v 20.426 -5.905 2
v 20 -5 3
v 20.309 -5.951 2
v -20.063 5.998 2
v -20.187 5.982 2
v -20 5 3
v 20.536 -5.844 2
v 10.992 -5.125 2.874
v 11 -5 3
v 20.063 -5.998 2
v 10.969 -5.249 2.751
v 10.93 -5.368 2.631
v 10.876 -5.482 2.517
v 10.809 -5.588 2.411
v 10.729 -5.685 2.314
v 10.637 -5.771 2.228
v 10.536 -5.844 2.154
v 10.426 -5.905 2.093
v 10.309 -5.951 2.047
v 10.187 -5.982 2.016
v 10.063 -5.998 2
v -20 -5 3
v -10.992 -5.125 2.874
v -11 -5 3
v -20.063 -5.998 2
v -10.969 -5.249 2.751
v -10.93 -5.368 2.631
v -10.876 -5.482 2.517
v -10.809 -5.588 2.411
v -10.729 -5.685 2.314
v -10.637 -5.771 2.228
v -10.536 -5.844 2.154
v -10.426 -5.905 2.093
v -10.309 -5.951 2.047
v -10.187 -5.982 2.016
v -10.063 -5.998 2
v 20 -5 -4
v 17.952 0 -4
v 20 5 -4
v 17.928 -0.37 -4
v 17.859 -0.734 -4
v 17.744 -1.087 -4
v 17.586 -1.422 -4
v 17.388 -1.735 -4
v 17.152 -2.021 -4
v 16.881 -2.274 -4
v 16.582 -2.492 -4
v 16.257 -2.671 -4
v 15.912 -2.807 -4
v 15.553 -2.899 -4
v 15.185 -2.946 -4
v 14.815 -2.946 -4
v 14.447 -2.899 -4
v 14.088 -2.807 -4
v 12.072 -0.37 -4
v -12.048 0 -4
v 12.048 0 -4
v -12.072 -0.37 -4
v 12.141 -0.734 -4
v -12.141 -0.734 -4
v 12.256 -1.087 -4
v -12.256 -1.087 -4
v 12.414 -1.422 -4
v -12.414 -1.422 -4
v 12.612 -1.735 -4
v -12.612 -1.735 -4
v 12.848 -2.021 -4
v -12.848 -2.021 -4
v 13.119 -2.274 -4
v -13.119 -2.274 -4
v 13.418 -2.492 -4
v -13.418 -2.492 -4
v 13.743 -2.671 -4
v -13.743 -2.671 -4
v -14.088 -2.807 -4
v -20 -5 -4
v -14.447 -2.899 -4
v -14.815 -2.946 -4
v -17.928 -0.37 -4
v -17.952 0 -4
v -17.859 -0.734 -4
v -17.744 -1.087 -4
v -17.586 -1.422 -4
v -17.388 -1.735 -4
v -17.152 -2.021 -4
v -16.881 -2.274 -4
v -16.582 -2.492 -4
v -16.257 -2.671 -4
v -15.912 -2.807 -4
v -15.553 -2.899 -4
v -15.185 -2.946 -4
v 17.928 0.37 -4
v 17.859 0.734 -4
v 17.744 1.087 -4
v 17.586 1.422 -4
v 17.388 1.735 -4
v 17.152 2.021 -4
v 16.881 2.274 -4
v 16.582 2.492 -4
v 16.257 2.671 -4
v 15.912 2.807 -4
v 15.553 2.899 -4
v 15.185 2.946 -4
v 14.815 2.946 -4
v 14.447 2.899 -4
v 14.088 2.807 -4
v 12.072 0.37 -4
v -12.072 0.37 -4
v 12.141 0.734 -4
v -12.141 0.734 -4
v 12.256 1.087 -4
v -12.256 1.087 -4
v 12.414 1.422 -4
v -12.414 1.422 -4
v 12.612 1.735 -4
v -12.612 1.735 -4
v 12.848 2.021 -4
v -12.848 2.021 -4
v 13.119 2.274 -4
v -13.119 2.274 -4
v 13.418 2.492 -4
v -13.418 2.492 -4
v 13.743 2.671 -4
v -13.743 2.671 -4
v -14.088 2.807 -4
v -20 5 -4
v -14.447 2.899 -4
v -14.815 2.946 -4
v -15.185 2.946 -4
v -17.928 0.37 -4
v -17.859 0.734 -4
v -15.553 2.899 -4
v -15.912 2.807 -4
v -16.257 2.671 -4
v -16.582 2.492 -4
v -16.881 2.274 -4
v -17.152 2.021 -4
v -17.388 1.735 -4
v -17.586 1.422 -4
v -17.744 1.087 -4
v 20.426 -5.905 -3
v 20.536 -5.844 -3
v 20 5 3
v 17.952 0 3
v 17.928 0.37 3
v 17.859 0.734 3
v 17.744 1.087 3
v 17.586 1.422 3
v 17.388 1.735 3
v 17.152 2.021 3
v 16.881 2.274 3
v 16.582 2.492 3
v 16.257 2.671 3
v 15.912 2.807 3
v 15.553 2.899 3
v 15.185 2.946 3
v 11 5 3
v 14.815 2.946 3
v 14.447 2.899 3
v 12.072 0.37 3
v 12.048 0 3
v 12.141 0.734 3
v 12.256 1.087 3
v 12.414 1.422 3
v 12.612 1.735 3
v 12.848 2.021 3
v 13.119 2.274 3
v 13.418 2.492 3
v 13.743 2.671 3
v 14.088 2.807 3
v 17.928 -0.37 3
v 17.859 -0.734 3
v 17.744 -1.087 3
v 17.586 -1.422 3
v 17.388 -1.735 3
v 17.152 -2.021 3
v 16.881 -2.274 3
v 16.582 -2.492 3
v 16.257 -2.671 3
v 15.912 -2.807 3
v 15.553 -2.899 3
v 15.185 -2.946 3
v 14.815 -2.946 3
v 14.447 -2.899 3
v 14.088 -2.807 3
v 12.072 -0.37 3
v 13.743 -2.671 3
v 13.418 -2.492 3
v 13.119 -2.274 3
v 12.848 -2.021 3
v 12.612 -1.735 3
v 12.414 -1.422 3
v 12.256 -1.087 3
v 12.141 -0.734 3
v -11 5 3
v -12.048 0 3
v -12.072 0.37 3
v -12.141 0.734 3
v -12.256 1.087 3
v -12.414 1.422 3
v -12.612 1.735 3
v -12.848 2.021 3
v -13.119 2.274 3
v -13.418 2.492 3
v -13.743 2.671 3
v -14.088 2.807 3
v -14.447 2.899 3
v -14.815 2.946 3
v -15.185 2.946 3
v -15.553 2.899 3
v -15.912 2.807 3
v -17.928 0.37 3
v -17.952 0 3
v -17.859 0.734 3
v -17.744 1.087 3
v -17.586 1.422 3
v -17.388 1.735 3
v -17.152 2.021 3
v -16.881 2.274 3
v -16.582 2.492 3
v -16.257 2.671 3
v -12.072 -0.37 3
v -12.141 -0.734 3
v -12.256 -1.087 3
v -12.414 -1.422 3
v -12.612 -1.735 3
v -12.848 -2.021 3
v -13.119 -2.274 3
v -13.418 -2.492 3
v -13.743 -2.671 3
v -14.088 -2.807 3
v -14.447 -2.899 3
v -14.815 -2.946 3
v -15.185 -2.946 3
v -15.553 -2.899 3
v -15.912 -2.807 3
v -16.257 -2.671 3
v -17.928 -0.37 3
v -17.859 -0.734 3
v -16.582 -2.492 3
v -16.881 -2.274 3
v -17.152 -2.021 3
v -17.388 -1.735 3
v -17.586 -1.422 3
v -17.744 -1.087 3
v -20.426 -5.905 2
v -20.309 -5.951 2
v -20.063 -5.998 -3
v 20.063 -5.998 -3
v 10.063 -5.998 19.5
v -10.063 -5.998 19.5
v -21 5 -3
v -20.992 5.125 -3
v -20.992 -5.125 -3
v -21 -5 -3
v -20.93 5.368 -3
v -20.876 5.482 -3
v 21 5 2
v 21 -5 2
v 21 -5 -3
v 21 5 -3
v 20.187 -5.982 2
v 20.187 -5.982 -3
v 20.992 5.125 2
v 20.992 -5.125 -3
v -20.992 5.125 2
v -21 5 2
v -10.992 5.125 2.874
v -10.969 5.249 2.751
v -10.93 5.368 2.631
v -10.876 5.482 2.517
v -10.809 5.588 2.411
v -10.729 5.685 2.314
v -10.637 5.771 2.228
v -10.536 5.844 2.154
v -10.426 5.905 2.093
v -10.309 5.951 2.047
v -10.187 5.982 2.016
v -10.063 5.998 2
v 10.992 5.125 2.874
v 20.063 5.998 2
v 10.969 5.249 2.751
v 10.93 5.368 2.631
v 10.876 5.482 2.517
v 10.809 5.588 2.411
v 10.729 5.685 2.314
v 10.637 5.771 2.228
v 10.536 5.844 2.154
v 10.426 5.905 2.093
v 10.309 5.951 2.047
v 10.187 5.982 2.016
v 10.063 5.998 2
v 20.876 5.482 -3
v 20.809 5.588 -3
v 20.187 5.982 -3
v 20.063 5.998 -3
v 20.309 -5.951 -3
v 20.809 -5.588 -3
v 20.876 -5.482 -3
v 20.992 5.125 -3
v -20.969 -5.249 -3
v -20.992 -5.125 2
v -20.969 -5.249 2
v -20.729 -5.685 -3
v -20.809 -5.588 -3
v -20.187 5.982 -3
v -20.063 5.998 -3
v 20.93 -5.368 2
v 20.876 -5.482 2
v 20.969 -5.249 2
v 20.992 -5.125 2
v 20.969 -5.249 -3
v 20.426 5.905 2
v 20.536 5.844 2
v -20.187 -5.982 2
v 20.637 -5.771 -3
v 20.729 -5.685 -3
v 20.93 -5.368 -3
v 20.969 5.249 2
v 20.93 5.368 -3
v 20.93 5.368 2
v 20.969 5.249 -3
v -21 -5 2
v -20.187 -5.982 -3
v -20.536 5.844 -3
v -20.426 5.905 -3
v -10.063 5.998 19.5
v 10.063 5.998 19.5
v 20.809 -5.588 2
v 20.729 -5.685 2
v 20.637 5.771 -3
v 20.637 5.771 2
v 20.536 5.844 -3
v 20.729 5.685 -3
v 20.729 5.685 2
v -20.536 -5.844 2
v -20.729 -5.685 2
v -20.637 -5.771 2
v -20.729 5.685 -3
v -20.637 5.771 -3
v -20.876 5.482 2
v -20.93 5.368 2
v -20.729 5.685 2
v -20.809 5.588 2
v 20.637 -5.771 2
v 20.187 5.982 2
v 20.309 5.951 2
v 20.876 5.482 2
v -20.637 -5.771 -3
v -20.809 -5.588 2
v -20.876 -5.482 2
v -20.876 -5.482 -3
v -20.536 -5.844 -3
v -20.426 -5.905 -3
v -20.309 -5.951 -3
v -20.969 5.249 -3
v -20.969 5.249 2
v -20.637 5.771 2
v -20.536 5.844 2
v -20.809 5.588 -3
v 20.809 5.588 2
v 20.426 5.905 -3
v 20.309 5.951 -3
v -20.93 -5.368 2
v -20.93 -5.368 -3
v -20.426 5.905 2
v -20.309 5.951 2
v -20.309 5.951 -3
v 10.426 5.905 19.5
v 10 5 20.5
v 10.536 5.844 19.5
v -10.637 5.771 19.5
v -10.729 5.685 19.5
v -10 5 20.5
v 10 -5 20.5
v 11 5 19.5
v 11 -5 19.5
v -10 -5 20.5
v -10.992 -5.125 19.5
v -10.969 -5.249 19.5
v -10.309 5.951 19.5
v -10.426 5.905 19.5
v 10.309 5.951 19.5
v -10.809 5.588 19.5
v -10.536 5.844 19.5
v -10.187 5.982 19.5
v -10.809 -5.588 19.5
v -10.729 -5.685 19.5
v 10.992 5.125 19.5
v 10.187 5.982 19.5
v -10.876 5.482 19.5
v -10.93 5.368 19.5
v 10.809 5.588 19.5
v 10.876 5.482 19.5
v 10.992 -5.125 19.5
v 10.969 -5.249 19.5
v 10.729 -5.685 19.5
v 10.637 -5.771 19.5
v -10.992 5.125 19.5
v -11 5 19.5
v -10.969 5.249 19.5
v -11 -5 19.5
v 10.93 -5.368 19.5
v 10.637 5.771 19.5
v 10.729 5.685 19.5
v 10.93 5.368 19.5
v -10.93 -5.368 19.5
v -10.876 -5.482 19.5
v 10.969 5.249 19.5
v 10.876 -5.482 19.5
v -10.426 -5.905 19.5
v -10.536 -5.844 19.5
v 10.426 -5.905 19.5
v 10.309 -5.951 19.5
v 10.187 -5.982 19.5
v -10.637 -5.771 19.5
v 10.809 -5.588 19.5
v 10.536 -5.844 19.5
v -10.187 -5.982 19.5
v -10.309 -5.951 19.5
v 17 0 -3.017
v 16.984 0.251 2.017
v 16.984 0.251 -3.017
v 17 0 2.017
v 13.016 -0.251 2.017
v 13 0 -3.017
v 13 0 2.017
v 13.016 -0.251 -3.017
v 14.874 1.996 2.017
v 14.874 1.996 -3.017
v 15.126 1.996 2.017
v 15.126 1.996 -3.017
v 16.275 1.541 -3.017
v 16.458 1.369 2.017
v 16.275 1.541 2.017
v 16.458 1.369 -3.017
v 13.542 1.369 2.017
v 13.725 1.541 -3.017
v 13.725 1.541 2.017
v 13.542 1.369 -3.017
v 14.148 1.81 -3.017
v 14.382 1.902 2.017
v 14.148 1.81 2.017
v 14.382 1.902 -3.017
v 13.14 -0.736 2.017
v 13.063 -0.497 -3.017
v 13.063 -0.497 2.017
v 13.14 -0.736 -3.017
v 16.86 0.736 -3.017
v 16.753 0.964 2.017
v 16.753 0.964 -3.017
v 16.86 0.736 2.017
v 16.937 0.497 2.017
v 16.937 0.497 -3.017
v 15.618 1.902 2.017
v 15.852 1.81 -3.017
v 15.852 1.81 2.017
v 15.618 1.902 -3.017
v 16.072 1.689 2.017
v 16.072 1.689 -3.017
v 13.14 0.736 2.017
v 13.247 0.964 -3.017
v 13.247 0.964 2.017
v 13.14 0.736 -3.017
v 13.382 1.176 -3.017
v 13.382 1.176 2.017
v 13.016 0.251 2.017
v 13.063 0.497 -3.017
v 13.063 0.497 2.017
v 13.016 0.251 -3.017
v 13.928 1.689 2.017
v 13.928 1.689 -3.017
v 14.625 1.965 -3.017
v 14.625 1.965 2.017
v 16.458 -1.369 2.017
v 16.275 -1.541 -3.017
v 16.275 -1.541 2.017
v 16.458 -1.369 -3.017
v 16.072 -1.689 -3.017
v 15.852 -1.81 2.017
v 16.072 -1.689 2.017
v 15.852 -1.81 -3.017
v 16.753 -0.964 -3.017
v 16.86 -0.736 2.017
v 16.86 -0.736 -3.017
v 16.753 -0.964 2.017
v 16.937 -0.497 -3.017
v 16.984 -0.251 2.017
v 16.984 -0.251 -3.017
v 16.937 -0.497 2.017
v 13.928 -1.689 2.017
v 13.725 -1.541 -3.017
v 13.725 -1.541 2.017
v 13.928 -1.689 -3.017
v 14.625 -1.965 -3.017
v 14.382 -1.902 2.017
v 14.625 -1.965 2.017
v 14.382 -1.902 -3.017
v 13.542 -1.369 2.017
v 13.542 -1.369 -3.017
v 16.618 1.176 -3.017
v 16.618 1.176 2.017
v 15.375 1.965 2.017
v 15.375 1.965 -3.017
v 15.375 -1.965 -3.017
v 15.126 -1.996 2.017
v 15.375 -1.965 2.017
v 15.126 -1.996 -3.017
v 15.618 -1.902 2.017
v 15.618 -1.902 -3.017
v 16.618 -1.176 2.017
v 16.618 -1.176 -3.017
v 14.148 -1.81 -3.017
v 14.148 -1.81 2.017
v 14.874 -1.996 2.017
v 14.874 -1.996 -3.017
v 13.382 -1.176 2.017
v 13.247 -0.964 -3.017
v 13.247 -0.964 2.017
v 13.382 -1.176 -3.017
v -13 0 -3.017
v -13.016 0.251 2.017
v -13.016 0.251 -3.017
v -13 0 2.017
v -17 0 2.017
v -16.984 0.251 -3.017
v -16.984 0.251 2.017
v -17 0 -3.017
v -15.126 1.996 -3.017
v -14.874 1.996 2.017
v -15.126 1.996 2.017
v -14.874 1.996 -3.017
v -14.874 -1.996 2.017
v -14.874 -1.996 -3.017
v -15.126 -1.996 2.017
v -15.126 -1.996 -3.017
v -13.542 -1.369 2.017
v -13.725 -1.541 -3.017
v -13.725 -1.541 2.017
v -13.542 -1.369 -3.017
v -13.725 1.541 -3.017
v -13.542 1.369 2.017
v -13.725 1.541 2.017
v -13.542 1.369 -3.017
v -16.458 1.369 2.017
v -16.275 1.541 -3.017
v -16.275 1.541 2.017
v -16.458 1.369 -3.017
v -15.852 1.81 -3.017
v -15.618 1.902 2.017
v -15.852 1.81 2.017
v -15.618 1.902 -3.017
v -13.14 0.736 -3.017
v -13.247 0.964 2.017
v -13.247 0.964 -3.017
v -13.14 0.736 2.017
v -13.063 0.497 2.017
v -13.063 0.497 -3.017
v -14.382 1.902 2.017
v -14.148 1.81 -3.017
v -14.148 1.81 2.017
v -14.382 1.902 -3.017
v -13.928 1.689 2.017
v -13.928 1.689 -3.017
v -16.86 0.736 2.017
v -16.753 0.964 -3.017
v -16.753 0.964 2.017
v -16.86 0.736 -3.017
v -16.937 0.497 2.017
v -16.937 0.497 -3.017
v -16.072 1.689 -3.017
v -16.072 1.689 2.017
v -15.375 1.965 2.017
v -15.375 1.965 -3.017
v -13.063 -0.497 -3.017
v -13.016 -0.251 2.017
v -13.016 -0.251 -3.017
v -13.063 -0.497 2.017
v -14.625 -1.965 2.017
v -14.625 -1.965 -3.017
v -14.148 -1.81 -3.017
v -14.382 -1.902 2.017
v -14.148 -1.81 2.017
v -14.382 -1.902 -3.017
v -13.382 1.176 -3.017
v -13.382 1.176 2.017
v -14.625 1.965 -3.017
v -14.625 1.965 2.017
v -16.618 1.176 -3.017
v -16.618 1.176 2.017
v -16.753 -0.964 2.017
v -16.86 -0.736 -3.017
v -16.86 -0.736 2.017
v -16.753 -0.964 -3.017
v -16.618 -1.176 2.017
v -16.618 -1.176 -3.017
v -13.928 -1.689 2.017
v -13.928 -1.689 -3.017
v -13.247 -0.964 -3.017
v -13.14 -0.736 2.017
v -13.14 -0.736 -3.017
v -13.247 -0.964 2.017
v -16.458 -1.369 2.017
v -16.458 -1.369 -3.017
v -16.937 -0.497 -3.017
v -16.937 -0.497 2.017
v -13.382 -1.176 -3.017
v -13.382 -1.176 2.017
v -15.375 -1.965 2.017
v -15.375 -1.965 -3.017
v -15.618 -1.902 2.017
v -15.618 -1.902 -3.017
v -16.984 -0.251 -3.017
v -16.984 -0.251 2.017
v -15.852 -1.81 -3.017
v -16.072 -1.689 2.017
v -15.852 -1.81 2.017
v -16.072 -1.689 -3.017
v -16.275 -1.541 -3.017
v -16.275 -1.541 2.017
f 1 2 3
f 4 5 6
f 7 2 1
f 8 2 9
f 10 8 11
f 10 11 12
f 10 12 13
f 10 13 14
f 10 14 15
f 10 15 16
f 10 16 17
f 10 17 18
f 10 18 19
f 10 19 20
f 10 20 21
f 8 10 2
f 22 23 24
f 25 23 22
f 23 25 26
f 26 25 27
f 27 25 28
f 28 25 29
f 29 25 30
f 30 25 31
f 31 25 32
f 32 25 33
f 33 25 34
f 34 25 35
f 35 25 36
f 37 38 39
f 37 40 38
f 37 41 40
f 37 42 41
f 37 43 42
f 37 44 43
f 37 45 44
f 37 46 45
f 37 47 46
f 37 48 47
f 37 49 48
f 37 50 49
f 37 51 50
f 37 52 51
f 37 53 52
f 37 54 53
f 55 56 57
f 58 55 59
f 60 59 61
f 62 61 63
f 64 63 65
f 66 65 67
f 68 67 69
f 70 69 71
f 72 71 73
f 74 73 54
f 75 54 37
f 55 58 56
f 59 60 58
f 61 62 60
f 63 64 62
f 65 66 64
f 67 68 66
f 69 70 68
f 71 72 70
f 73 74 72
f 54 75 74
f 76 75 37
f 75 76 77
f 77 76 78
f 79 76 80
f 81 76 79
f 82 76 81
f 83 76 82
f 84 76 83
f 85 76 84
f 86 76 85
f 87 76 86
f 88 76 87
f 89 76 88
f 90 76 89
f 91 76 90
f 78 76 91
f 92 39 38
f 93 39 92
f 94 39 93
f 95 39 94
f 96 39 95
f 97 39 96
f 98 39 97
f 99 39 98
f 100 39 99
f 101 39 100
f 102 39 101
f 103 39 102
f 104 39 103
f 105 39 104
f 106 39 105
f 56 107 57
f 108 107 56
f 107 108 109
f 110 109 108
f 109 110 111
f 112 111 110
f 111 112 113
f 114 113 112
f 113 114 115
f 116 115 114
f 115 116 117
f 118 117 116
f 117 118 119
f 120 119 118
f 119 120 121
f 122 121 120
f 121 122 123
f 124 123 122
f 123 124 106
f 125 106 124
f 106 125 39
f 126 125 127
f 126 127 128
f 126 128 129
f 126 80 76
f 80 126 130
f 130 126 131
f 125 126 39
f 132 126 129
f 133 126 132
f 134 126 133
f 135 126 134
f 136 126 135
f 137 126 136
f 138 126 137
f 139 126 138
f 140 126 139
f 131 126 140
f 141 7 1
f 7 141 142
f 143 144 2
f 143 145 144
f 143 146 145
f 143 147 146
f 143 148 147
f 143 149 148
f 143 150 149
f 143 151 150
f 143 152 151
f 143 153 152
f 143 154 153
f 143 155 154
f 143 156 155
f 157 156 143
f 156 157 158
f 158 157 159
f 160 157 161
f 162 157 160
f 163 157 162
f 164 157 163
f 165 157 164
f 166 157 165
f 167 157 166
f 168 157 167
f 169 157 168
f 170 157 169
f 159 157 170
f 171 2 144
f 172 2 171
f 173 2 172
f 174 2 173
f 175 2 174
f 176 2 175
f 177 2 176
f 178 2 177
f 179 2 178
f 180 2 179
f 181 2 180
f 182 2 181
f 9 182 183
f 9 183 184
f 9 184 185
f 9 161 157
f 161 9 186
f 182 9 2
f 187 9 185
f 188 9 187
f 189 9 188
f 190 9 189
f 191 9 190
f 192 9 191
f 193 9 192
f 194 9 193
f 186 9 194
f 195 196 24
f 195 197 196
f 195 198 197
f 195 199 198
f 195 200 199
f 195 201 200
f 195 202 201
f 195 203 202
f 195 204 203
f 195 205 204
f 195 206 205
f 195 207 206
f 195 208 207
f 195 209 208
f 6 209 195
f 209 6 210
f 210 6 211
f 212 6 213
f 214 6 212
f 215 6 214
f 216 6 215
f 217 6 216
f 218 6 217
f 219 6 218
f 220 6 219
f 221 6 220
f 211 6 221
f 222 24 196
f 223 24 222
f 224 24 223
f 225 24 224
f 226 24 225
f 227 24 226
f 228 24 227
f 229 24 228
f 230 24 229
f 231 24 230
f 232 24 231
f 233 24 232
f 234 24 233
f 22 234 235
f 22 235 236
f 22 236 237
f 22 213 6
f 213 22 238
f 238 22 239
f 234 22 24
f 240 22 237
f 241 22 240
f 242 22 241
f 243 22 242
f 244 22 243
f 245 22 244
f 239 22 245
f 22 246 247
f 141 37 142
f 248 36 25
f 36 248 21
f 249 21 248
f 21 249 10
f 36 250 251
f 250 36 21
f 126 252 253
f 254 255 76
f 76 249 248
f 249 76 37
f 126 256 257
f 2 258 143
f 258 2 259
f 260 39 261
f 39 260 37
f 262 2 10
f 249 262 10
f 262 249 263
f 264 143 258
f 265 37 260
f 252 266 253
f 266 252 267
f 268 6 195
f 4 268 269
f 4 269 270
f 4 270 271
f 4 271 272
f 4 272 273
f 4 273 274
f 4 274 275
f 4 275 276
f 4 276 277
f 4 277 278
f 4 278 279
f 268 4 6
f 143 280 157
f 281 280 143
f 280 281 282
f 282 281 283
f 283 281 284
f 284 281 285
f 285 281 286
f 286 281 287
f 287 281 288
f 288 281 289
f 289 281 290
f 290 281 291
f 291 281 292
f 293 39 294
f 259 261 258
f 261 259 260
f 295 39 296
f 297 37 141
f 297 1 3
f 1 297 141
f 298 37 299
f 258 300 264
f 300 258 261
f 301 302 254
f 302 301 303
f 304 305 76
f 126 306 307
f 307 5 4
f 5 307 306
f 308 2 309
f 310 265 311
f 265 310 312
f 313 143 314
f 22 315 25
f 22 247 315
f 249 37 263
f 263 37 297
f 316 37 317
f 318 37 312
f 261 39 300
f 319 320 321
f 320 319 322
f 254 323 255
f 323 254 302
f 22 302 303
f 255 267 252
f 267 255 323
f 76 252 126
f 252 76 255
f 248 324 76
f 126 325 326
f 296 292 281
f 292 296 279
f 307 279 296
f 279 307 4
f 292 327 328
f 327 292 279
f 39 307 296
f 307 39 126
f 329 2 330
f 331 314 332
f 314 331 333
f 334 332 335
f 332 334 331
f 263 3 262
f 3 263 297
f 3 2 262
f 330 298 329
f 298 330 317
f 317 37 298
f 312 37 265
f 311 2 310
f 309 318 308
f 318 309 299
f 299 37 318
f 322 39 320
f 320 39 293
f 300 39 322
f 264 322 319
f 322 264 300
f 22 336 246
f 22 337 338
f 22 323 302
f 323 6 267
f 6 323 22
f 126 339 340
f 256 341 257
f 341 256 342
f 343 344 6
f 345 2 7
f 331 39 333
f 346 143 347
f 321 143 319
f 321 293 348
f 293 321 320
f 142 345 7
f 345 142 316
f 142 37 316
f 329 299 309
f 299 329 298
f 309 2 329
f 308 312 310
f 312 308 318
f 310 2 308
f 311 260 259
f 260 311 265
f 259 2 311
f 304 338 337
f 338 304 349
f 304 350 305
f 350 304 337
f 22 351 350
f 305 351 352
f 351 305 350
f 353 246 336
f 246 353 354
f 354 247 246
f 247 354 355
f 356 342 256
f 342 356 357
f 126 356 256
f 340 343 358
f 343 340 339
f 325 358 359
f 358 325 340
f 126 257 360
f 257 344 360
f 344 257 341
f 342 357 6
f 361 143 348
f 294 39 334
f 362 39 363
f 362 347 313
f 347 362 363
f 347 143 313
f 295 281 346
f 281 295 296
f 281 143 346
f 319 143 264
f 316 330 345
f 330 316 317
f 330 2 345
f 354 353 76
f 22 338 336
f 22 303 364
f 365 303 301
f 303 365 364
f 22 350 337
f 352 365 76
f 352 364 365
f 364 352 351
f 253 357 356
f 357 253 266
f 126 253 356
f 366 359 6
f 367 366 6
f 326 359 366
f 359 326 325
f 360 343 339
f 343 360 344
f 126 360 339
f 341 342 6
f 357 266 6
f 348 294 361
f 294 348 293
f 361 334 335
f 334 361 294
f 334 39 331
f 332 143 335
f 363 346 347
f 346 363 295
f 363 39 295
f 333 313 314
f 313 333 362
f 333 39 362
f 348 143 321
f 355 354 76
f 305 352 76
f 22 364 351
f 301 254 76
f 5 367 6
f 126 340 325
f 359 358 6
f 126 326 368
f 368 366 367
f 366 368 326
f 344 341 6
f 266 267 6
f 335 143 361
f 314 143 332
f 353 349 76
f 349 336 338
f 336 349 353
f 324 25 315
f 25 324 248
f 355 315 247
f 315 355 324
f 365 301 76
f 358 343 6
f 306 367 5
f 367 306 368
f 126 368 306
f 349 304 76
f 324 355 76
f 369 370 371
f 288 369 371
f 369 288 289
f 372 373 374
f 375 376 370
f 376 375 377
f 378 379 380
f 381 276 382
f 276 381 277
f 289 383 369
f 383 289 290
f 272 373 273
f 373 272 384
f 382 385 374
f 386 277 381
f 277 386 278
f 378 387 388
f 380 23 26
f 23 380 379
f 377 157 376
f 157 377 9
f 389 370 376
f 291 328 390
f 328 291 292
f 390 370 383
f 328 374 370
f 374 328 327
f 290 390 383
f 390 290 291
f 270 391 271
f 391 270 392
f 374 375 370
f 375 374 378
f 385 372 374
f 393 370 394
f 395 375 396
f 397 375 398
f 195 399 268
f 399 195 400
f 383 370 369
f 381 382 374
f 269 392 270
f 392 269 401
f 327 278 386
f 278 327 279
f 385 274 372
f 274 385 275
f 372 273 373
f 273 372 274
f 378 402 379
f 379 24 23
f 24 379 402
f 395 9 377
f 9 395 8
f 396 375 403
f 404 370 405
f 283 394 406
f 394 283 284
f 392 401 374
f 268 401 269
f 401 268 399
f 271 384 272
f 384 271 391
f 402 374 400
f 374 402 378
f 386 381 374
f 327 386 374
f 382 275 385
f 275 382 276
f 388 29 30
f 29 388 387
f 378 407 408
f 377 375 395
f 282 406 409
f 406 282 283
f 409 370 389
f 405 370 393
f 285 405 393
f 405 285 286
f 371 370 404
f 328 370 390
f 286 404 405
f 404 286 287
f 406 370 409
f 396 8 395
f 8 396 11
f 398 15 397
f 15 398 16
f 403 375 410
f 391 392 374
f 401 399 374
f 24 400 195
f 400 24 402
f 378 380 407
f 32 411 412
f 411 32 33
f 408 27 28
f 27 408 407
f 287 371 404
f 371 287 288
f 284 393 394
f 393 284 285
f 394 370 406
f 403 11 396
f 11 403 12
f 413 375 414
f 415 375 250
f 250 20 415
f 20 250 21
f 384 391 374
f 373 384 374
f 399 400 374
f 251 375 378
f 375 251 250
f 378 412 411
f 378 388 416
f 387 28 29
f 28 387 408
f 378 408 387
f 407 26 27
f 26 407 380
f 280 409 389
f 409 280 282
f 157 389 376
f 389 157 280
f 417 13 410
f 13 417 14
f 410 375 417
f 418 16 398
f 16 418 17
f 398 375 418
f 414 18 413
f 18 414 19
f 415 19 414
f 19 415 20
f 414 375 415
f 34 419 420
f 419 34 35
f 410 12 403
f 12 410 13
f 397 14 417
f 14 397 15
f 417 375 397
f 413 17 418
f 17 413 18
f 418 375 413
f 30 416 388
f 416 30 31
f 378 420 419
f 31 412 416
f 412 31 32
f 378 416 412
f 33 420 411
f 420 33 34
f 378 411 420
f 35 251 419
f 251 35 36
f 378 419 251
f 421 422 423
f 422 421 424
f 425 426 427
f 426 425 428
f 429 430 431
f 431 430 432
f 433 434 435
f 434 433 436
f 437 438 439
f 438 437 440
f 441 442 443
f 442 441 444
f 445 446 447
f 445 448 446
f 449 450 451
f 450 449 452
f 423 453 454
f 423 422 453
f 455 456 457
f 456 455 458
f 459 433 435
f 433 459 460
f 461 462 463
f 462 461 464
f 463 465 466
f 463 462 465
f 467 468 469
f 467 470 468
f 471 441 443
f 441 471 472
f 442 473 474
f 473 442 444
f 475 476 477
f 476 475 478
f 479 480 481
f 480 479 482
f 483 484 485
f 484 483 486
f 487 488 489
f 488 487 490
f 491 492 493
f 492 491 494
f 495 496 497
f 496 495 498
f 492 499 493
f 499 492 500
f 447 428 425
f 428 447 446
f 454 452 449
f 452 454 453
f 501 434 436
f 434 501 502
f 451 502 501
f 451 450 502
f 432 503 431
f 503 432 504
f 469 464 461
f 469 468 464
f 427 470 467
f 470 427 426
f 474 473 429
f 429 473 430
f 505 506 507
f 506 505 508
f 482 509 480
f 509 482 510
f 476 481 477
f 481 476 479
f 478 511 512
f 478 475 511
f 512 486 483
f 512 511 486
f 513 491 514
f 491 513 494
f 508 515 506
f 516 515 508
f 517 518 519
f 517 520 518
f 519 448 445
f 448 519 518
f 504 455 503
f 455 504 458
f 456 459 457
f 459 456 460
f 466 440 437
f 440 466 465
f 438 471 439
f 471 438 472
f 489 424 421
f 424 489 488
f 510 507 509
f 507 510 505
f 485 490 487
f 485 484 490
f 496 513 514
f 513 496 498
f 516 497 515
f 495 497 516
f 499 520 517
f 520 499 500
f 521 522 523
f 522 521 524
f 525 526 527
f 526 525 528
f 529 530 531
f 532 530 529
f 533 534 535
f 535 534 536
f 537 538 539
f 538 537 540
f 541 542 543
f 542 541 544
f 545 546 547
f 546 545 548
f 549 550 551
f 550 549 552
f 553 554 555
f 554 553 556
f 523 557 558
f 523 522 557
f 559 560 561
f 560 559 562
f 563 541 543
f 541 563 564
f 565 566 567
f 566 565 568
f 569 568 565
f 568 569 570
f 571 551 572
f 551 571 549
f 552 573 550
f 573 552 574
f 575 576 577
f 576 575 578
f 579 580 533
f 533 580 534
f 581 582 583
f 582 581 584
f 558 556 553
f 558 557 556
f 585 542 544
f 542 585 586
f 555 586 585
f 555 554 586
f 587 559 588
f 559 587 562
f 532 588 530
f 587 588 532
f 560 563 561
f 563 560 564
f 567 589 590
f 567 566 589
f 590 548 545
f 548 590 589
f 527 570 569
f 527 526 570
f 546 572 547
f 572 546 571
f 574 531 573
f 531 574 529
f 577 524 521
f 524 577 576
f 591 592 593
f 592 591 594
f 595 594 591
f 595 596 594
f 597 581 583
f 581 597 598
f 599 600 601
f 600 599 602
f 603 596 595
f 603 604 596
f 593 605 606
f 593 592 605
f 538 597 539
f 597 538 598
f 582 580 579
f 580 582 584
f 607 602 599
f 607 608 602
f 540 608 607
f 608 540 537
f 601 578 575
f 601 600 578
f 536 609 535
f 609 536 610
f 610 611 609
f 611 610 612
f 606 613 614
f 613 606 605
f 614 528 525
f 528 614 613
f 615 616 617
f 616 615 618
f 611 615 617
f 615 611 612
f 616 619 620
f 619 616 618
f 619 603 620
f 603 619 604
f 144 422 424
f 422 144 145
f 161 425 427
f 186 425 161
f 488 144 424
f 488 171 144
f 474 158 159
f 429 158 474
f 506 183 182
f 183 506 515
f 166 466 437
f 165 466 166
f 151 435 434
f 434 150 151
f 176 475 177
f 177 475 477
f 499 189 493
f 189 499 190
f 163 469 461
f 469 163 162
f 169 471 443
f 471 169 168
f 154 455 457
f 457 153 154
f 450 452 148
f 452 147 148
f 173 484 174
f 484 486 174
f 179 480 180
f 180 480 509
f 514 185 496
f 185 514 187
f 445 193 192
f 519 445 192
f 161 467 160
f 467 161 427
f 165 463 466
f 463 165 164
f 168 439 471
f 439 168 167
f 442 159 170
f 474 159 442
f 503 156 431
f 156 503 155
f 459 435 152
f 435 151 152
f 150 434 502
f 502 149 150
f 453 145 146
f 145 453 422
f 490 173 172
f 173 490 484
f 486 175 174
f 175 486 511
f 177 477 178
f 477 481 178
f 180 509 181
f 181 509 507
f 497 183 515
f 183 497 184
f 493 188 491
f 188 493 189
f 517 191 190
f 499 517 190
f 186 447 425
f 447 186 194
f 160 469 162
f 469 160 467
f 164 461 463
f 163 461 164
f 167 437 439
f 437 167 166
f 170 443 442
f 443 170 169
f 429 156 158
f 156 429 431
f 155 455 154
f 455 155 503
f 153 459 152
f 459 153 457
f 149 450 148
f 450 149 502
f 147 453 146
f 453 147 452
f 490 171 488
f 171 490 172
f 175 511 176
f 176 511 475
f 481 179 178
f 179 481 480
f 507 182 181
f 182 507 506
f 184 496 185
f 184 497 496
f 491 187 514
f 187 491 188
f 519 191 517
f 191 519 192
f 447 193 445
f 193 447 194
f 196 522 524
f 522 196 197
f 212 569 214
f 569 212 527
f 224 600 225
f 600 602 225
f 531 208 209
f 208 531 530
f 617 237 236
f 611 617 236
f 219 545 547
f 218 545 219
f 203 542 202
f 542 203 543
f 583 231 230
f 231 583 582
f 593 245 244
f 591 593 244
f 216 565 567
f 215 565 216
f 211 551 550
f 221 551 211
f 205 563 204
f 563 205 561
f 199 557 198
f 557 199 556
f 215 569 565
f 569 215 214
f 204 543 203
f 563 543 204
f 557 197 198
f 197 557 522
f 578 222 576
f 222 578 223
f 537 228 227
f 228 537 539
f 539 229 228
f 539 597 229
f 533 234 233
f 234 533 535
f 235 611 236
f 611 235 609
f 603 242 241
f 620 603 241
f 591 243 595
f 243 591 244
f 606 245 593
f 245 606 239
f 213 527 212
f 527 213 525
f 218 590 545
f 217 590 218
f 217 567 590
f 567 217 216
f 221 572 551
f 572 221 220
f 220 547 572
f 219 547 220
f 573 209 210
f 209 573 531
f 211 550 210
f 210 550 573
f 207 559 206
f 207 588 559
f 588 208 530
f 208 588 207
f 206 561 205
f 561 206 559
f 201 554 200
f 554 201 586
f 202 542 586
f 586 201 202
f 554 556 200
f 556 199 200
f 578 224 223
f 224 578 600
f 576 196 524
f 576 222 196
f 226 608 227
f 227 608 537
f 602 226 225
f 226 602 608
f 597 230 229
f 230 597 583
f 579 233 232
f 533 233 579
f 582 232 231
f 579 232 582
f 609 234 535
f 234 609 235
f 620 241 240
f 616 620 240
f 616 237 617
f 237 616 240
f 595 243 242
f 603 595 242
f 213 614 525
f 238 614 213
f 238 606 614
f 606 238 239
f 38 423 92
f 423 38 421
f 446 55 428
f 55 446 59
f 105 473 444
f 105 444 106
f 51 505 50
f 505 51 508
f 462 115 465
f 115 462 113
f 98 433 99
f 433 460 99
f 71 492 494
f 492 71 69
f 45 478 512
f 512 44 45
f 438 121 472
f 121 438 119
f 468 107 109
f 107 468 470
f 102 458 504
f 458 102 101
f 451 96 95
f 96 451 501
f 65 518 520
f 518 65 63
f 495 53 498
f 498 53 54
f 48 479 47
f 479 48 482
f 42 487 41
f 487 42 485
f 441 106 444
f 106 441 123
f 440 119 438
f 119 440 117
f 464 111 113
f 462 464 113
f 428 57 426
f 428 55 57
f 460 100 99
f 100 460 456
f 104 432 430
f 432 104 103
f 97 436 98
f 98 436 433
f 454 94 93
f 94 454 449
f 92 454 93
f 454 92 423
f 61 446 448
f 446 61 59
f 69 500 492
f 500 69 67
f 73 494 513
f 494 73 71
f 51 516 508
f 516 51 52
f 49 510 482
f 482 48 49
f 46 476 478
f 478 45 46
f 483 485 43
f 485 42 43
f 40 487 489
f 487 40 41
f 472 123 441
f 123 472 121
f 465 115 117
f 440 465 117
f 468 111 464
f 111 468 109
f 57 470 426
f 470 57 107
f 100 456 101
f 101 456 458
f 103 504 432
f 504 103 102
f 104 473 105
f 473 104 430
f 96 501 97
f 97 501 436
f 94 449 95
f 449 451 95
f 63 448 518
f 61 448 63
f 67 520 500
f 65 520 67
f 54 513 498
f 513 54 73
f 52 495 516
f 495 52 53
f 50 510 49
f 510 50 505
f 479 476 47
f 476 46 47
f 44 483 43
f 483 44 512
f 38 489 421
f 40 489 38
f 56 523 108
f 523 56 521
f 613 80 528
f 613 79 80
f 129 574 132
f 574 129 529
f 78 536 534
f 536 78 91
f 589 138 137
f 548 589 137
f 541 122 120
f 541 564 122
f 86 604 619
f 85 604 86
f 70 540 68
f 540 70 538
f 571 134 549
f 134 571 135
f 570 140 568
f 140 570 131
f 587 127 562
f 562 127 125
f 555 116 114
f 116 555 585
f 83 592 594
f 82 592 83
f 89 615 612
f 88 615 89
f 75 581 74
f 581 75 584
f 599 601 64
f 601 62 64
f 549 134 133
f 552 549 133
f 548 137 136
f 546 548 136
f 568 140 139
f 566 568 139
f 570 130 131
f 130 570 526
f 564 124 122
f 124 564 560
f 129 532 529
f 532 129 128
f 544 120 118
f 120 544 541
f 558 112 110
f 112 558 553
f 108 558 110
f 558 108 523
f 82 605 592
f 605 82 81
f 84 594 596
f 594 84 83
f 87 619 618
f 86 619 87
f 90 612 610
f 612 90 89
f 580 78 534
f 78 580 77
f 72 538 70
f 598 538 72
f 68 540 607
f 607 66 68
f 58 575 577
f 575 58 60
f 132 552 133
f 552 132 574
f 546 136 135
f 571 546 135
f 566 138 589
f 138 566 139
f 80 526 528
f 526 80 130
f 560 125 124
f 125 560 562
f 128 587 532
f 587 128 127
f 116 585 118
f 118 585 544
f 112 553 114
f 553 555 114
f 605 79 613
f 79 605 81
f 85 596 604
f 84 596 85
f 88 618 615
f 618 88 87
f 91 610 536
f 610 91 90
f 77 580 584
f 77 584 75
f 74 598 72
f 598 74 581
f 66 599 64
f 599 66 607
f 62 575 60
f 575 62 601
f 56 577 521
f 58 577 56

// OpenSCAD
// a small block to prevent my old dresser's drawers from sliding too far 
// back into the frame

difference(){
    minkowski(){
        // body of drawer stop, probably doesn't need to be this beefy.
        union(){
            translate([0, 0, 10]) cube([20, 10, 20], center=true);
            translate([0, 0, 0]) cube([40, 10, 5], center=true);
        };
        // double cone buck for adding a chamfer to horizontal lines and fillets to the verticals
        union(){
            translate([0, 0, -1]) cylinder(r1=0, h=1, r2=1, $fn=50, center=true);
            cylinder(r1=1, h=1, r2=0, $fn=50, center=true);
        }
    }
    // +X hole
    translate([15, 0, 0,]) cylinder(h=10, r=2, $fn=50, center=true);
    // -X hole
    translate([-15, 0, 0,]) cylinder(h=10, r=2, $fn=50, center=true);
    // chamfer on top of holes
    translate([15, 0, 1.5]) cylinder(r1=0, h=3.1, r2=3, $fn=50, center=true); // +X
    translate([-15, 0, 1.5]) cylinder(r1=0, h=3.1, r2=3, $fn=50, center=true); // -X
    // chamfer on bottom of holes
    translate([15, 0, -2.5]) cylinder(r1=3, h=3.1, r2=0, $fn=50, center=true); // +X
    translate([-15, 0, -2.5]) cylinder(r1=3, h=3.1, r2=0, $fn=50, center=true); // -X
}
